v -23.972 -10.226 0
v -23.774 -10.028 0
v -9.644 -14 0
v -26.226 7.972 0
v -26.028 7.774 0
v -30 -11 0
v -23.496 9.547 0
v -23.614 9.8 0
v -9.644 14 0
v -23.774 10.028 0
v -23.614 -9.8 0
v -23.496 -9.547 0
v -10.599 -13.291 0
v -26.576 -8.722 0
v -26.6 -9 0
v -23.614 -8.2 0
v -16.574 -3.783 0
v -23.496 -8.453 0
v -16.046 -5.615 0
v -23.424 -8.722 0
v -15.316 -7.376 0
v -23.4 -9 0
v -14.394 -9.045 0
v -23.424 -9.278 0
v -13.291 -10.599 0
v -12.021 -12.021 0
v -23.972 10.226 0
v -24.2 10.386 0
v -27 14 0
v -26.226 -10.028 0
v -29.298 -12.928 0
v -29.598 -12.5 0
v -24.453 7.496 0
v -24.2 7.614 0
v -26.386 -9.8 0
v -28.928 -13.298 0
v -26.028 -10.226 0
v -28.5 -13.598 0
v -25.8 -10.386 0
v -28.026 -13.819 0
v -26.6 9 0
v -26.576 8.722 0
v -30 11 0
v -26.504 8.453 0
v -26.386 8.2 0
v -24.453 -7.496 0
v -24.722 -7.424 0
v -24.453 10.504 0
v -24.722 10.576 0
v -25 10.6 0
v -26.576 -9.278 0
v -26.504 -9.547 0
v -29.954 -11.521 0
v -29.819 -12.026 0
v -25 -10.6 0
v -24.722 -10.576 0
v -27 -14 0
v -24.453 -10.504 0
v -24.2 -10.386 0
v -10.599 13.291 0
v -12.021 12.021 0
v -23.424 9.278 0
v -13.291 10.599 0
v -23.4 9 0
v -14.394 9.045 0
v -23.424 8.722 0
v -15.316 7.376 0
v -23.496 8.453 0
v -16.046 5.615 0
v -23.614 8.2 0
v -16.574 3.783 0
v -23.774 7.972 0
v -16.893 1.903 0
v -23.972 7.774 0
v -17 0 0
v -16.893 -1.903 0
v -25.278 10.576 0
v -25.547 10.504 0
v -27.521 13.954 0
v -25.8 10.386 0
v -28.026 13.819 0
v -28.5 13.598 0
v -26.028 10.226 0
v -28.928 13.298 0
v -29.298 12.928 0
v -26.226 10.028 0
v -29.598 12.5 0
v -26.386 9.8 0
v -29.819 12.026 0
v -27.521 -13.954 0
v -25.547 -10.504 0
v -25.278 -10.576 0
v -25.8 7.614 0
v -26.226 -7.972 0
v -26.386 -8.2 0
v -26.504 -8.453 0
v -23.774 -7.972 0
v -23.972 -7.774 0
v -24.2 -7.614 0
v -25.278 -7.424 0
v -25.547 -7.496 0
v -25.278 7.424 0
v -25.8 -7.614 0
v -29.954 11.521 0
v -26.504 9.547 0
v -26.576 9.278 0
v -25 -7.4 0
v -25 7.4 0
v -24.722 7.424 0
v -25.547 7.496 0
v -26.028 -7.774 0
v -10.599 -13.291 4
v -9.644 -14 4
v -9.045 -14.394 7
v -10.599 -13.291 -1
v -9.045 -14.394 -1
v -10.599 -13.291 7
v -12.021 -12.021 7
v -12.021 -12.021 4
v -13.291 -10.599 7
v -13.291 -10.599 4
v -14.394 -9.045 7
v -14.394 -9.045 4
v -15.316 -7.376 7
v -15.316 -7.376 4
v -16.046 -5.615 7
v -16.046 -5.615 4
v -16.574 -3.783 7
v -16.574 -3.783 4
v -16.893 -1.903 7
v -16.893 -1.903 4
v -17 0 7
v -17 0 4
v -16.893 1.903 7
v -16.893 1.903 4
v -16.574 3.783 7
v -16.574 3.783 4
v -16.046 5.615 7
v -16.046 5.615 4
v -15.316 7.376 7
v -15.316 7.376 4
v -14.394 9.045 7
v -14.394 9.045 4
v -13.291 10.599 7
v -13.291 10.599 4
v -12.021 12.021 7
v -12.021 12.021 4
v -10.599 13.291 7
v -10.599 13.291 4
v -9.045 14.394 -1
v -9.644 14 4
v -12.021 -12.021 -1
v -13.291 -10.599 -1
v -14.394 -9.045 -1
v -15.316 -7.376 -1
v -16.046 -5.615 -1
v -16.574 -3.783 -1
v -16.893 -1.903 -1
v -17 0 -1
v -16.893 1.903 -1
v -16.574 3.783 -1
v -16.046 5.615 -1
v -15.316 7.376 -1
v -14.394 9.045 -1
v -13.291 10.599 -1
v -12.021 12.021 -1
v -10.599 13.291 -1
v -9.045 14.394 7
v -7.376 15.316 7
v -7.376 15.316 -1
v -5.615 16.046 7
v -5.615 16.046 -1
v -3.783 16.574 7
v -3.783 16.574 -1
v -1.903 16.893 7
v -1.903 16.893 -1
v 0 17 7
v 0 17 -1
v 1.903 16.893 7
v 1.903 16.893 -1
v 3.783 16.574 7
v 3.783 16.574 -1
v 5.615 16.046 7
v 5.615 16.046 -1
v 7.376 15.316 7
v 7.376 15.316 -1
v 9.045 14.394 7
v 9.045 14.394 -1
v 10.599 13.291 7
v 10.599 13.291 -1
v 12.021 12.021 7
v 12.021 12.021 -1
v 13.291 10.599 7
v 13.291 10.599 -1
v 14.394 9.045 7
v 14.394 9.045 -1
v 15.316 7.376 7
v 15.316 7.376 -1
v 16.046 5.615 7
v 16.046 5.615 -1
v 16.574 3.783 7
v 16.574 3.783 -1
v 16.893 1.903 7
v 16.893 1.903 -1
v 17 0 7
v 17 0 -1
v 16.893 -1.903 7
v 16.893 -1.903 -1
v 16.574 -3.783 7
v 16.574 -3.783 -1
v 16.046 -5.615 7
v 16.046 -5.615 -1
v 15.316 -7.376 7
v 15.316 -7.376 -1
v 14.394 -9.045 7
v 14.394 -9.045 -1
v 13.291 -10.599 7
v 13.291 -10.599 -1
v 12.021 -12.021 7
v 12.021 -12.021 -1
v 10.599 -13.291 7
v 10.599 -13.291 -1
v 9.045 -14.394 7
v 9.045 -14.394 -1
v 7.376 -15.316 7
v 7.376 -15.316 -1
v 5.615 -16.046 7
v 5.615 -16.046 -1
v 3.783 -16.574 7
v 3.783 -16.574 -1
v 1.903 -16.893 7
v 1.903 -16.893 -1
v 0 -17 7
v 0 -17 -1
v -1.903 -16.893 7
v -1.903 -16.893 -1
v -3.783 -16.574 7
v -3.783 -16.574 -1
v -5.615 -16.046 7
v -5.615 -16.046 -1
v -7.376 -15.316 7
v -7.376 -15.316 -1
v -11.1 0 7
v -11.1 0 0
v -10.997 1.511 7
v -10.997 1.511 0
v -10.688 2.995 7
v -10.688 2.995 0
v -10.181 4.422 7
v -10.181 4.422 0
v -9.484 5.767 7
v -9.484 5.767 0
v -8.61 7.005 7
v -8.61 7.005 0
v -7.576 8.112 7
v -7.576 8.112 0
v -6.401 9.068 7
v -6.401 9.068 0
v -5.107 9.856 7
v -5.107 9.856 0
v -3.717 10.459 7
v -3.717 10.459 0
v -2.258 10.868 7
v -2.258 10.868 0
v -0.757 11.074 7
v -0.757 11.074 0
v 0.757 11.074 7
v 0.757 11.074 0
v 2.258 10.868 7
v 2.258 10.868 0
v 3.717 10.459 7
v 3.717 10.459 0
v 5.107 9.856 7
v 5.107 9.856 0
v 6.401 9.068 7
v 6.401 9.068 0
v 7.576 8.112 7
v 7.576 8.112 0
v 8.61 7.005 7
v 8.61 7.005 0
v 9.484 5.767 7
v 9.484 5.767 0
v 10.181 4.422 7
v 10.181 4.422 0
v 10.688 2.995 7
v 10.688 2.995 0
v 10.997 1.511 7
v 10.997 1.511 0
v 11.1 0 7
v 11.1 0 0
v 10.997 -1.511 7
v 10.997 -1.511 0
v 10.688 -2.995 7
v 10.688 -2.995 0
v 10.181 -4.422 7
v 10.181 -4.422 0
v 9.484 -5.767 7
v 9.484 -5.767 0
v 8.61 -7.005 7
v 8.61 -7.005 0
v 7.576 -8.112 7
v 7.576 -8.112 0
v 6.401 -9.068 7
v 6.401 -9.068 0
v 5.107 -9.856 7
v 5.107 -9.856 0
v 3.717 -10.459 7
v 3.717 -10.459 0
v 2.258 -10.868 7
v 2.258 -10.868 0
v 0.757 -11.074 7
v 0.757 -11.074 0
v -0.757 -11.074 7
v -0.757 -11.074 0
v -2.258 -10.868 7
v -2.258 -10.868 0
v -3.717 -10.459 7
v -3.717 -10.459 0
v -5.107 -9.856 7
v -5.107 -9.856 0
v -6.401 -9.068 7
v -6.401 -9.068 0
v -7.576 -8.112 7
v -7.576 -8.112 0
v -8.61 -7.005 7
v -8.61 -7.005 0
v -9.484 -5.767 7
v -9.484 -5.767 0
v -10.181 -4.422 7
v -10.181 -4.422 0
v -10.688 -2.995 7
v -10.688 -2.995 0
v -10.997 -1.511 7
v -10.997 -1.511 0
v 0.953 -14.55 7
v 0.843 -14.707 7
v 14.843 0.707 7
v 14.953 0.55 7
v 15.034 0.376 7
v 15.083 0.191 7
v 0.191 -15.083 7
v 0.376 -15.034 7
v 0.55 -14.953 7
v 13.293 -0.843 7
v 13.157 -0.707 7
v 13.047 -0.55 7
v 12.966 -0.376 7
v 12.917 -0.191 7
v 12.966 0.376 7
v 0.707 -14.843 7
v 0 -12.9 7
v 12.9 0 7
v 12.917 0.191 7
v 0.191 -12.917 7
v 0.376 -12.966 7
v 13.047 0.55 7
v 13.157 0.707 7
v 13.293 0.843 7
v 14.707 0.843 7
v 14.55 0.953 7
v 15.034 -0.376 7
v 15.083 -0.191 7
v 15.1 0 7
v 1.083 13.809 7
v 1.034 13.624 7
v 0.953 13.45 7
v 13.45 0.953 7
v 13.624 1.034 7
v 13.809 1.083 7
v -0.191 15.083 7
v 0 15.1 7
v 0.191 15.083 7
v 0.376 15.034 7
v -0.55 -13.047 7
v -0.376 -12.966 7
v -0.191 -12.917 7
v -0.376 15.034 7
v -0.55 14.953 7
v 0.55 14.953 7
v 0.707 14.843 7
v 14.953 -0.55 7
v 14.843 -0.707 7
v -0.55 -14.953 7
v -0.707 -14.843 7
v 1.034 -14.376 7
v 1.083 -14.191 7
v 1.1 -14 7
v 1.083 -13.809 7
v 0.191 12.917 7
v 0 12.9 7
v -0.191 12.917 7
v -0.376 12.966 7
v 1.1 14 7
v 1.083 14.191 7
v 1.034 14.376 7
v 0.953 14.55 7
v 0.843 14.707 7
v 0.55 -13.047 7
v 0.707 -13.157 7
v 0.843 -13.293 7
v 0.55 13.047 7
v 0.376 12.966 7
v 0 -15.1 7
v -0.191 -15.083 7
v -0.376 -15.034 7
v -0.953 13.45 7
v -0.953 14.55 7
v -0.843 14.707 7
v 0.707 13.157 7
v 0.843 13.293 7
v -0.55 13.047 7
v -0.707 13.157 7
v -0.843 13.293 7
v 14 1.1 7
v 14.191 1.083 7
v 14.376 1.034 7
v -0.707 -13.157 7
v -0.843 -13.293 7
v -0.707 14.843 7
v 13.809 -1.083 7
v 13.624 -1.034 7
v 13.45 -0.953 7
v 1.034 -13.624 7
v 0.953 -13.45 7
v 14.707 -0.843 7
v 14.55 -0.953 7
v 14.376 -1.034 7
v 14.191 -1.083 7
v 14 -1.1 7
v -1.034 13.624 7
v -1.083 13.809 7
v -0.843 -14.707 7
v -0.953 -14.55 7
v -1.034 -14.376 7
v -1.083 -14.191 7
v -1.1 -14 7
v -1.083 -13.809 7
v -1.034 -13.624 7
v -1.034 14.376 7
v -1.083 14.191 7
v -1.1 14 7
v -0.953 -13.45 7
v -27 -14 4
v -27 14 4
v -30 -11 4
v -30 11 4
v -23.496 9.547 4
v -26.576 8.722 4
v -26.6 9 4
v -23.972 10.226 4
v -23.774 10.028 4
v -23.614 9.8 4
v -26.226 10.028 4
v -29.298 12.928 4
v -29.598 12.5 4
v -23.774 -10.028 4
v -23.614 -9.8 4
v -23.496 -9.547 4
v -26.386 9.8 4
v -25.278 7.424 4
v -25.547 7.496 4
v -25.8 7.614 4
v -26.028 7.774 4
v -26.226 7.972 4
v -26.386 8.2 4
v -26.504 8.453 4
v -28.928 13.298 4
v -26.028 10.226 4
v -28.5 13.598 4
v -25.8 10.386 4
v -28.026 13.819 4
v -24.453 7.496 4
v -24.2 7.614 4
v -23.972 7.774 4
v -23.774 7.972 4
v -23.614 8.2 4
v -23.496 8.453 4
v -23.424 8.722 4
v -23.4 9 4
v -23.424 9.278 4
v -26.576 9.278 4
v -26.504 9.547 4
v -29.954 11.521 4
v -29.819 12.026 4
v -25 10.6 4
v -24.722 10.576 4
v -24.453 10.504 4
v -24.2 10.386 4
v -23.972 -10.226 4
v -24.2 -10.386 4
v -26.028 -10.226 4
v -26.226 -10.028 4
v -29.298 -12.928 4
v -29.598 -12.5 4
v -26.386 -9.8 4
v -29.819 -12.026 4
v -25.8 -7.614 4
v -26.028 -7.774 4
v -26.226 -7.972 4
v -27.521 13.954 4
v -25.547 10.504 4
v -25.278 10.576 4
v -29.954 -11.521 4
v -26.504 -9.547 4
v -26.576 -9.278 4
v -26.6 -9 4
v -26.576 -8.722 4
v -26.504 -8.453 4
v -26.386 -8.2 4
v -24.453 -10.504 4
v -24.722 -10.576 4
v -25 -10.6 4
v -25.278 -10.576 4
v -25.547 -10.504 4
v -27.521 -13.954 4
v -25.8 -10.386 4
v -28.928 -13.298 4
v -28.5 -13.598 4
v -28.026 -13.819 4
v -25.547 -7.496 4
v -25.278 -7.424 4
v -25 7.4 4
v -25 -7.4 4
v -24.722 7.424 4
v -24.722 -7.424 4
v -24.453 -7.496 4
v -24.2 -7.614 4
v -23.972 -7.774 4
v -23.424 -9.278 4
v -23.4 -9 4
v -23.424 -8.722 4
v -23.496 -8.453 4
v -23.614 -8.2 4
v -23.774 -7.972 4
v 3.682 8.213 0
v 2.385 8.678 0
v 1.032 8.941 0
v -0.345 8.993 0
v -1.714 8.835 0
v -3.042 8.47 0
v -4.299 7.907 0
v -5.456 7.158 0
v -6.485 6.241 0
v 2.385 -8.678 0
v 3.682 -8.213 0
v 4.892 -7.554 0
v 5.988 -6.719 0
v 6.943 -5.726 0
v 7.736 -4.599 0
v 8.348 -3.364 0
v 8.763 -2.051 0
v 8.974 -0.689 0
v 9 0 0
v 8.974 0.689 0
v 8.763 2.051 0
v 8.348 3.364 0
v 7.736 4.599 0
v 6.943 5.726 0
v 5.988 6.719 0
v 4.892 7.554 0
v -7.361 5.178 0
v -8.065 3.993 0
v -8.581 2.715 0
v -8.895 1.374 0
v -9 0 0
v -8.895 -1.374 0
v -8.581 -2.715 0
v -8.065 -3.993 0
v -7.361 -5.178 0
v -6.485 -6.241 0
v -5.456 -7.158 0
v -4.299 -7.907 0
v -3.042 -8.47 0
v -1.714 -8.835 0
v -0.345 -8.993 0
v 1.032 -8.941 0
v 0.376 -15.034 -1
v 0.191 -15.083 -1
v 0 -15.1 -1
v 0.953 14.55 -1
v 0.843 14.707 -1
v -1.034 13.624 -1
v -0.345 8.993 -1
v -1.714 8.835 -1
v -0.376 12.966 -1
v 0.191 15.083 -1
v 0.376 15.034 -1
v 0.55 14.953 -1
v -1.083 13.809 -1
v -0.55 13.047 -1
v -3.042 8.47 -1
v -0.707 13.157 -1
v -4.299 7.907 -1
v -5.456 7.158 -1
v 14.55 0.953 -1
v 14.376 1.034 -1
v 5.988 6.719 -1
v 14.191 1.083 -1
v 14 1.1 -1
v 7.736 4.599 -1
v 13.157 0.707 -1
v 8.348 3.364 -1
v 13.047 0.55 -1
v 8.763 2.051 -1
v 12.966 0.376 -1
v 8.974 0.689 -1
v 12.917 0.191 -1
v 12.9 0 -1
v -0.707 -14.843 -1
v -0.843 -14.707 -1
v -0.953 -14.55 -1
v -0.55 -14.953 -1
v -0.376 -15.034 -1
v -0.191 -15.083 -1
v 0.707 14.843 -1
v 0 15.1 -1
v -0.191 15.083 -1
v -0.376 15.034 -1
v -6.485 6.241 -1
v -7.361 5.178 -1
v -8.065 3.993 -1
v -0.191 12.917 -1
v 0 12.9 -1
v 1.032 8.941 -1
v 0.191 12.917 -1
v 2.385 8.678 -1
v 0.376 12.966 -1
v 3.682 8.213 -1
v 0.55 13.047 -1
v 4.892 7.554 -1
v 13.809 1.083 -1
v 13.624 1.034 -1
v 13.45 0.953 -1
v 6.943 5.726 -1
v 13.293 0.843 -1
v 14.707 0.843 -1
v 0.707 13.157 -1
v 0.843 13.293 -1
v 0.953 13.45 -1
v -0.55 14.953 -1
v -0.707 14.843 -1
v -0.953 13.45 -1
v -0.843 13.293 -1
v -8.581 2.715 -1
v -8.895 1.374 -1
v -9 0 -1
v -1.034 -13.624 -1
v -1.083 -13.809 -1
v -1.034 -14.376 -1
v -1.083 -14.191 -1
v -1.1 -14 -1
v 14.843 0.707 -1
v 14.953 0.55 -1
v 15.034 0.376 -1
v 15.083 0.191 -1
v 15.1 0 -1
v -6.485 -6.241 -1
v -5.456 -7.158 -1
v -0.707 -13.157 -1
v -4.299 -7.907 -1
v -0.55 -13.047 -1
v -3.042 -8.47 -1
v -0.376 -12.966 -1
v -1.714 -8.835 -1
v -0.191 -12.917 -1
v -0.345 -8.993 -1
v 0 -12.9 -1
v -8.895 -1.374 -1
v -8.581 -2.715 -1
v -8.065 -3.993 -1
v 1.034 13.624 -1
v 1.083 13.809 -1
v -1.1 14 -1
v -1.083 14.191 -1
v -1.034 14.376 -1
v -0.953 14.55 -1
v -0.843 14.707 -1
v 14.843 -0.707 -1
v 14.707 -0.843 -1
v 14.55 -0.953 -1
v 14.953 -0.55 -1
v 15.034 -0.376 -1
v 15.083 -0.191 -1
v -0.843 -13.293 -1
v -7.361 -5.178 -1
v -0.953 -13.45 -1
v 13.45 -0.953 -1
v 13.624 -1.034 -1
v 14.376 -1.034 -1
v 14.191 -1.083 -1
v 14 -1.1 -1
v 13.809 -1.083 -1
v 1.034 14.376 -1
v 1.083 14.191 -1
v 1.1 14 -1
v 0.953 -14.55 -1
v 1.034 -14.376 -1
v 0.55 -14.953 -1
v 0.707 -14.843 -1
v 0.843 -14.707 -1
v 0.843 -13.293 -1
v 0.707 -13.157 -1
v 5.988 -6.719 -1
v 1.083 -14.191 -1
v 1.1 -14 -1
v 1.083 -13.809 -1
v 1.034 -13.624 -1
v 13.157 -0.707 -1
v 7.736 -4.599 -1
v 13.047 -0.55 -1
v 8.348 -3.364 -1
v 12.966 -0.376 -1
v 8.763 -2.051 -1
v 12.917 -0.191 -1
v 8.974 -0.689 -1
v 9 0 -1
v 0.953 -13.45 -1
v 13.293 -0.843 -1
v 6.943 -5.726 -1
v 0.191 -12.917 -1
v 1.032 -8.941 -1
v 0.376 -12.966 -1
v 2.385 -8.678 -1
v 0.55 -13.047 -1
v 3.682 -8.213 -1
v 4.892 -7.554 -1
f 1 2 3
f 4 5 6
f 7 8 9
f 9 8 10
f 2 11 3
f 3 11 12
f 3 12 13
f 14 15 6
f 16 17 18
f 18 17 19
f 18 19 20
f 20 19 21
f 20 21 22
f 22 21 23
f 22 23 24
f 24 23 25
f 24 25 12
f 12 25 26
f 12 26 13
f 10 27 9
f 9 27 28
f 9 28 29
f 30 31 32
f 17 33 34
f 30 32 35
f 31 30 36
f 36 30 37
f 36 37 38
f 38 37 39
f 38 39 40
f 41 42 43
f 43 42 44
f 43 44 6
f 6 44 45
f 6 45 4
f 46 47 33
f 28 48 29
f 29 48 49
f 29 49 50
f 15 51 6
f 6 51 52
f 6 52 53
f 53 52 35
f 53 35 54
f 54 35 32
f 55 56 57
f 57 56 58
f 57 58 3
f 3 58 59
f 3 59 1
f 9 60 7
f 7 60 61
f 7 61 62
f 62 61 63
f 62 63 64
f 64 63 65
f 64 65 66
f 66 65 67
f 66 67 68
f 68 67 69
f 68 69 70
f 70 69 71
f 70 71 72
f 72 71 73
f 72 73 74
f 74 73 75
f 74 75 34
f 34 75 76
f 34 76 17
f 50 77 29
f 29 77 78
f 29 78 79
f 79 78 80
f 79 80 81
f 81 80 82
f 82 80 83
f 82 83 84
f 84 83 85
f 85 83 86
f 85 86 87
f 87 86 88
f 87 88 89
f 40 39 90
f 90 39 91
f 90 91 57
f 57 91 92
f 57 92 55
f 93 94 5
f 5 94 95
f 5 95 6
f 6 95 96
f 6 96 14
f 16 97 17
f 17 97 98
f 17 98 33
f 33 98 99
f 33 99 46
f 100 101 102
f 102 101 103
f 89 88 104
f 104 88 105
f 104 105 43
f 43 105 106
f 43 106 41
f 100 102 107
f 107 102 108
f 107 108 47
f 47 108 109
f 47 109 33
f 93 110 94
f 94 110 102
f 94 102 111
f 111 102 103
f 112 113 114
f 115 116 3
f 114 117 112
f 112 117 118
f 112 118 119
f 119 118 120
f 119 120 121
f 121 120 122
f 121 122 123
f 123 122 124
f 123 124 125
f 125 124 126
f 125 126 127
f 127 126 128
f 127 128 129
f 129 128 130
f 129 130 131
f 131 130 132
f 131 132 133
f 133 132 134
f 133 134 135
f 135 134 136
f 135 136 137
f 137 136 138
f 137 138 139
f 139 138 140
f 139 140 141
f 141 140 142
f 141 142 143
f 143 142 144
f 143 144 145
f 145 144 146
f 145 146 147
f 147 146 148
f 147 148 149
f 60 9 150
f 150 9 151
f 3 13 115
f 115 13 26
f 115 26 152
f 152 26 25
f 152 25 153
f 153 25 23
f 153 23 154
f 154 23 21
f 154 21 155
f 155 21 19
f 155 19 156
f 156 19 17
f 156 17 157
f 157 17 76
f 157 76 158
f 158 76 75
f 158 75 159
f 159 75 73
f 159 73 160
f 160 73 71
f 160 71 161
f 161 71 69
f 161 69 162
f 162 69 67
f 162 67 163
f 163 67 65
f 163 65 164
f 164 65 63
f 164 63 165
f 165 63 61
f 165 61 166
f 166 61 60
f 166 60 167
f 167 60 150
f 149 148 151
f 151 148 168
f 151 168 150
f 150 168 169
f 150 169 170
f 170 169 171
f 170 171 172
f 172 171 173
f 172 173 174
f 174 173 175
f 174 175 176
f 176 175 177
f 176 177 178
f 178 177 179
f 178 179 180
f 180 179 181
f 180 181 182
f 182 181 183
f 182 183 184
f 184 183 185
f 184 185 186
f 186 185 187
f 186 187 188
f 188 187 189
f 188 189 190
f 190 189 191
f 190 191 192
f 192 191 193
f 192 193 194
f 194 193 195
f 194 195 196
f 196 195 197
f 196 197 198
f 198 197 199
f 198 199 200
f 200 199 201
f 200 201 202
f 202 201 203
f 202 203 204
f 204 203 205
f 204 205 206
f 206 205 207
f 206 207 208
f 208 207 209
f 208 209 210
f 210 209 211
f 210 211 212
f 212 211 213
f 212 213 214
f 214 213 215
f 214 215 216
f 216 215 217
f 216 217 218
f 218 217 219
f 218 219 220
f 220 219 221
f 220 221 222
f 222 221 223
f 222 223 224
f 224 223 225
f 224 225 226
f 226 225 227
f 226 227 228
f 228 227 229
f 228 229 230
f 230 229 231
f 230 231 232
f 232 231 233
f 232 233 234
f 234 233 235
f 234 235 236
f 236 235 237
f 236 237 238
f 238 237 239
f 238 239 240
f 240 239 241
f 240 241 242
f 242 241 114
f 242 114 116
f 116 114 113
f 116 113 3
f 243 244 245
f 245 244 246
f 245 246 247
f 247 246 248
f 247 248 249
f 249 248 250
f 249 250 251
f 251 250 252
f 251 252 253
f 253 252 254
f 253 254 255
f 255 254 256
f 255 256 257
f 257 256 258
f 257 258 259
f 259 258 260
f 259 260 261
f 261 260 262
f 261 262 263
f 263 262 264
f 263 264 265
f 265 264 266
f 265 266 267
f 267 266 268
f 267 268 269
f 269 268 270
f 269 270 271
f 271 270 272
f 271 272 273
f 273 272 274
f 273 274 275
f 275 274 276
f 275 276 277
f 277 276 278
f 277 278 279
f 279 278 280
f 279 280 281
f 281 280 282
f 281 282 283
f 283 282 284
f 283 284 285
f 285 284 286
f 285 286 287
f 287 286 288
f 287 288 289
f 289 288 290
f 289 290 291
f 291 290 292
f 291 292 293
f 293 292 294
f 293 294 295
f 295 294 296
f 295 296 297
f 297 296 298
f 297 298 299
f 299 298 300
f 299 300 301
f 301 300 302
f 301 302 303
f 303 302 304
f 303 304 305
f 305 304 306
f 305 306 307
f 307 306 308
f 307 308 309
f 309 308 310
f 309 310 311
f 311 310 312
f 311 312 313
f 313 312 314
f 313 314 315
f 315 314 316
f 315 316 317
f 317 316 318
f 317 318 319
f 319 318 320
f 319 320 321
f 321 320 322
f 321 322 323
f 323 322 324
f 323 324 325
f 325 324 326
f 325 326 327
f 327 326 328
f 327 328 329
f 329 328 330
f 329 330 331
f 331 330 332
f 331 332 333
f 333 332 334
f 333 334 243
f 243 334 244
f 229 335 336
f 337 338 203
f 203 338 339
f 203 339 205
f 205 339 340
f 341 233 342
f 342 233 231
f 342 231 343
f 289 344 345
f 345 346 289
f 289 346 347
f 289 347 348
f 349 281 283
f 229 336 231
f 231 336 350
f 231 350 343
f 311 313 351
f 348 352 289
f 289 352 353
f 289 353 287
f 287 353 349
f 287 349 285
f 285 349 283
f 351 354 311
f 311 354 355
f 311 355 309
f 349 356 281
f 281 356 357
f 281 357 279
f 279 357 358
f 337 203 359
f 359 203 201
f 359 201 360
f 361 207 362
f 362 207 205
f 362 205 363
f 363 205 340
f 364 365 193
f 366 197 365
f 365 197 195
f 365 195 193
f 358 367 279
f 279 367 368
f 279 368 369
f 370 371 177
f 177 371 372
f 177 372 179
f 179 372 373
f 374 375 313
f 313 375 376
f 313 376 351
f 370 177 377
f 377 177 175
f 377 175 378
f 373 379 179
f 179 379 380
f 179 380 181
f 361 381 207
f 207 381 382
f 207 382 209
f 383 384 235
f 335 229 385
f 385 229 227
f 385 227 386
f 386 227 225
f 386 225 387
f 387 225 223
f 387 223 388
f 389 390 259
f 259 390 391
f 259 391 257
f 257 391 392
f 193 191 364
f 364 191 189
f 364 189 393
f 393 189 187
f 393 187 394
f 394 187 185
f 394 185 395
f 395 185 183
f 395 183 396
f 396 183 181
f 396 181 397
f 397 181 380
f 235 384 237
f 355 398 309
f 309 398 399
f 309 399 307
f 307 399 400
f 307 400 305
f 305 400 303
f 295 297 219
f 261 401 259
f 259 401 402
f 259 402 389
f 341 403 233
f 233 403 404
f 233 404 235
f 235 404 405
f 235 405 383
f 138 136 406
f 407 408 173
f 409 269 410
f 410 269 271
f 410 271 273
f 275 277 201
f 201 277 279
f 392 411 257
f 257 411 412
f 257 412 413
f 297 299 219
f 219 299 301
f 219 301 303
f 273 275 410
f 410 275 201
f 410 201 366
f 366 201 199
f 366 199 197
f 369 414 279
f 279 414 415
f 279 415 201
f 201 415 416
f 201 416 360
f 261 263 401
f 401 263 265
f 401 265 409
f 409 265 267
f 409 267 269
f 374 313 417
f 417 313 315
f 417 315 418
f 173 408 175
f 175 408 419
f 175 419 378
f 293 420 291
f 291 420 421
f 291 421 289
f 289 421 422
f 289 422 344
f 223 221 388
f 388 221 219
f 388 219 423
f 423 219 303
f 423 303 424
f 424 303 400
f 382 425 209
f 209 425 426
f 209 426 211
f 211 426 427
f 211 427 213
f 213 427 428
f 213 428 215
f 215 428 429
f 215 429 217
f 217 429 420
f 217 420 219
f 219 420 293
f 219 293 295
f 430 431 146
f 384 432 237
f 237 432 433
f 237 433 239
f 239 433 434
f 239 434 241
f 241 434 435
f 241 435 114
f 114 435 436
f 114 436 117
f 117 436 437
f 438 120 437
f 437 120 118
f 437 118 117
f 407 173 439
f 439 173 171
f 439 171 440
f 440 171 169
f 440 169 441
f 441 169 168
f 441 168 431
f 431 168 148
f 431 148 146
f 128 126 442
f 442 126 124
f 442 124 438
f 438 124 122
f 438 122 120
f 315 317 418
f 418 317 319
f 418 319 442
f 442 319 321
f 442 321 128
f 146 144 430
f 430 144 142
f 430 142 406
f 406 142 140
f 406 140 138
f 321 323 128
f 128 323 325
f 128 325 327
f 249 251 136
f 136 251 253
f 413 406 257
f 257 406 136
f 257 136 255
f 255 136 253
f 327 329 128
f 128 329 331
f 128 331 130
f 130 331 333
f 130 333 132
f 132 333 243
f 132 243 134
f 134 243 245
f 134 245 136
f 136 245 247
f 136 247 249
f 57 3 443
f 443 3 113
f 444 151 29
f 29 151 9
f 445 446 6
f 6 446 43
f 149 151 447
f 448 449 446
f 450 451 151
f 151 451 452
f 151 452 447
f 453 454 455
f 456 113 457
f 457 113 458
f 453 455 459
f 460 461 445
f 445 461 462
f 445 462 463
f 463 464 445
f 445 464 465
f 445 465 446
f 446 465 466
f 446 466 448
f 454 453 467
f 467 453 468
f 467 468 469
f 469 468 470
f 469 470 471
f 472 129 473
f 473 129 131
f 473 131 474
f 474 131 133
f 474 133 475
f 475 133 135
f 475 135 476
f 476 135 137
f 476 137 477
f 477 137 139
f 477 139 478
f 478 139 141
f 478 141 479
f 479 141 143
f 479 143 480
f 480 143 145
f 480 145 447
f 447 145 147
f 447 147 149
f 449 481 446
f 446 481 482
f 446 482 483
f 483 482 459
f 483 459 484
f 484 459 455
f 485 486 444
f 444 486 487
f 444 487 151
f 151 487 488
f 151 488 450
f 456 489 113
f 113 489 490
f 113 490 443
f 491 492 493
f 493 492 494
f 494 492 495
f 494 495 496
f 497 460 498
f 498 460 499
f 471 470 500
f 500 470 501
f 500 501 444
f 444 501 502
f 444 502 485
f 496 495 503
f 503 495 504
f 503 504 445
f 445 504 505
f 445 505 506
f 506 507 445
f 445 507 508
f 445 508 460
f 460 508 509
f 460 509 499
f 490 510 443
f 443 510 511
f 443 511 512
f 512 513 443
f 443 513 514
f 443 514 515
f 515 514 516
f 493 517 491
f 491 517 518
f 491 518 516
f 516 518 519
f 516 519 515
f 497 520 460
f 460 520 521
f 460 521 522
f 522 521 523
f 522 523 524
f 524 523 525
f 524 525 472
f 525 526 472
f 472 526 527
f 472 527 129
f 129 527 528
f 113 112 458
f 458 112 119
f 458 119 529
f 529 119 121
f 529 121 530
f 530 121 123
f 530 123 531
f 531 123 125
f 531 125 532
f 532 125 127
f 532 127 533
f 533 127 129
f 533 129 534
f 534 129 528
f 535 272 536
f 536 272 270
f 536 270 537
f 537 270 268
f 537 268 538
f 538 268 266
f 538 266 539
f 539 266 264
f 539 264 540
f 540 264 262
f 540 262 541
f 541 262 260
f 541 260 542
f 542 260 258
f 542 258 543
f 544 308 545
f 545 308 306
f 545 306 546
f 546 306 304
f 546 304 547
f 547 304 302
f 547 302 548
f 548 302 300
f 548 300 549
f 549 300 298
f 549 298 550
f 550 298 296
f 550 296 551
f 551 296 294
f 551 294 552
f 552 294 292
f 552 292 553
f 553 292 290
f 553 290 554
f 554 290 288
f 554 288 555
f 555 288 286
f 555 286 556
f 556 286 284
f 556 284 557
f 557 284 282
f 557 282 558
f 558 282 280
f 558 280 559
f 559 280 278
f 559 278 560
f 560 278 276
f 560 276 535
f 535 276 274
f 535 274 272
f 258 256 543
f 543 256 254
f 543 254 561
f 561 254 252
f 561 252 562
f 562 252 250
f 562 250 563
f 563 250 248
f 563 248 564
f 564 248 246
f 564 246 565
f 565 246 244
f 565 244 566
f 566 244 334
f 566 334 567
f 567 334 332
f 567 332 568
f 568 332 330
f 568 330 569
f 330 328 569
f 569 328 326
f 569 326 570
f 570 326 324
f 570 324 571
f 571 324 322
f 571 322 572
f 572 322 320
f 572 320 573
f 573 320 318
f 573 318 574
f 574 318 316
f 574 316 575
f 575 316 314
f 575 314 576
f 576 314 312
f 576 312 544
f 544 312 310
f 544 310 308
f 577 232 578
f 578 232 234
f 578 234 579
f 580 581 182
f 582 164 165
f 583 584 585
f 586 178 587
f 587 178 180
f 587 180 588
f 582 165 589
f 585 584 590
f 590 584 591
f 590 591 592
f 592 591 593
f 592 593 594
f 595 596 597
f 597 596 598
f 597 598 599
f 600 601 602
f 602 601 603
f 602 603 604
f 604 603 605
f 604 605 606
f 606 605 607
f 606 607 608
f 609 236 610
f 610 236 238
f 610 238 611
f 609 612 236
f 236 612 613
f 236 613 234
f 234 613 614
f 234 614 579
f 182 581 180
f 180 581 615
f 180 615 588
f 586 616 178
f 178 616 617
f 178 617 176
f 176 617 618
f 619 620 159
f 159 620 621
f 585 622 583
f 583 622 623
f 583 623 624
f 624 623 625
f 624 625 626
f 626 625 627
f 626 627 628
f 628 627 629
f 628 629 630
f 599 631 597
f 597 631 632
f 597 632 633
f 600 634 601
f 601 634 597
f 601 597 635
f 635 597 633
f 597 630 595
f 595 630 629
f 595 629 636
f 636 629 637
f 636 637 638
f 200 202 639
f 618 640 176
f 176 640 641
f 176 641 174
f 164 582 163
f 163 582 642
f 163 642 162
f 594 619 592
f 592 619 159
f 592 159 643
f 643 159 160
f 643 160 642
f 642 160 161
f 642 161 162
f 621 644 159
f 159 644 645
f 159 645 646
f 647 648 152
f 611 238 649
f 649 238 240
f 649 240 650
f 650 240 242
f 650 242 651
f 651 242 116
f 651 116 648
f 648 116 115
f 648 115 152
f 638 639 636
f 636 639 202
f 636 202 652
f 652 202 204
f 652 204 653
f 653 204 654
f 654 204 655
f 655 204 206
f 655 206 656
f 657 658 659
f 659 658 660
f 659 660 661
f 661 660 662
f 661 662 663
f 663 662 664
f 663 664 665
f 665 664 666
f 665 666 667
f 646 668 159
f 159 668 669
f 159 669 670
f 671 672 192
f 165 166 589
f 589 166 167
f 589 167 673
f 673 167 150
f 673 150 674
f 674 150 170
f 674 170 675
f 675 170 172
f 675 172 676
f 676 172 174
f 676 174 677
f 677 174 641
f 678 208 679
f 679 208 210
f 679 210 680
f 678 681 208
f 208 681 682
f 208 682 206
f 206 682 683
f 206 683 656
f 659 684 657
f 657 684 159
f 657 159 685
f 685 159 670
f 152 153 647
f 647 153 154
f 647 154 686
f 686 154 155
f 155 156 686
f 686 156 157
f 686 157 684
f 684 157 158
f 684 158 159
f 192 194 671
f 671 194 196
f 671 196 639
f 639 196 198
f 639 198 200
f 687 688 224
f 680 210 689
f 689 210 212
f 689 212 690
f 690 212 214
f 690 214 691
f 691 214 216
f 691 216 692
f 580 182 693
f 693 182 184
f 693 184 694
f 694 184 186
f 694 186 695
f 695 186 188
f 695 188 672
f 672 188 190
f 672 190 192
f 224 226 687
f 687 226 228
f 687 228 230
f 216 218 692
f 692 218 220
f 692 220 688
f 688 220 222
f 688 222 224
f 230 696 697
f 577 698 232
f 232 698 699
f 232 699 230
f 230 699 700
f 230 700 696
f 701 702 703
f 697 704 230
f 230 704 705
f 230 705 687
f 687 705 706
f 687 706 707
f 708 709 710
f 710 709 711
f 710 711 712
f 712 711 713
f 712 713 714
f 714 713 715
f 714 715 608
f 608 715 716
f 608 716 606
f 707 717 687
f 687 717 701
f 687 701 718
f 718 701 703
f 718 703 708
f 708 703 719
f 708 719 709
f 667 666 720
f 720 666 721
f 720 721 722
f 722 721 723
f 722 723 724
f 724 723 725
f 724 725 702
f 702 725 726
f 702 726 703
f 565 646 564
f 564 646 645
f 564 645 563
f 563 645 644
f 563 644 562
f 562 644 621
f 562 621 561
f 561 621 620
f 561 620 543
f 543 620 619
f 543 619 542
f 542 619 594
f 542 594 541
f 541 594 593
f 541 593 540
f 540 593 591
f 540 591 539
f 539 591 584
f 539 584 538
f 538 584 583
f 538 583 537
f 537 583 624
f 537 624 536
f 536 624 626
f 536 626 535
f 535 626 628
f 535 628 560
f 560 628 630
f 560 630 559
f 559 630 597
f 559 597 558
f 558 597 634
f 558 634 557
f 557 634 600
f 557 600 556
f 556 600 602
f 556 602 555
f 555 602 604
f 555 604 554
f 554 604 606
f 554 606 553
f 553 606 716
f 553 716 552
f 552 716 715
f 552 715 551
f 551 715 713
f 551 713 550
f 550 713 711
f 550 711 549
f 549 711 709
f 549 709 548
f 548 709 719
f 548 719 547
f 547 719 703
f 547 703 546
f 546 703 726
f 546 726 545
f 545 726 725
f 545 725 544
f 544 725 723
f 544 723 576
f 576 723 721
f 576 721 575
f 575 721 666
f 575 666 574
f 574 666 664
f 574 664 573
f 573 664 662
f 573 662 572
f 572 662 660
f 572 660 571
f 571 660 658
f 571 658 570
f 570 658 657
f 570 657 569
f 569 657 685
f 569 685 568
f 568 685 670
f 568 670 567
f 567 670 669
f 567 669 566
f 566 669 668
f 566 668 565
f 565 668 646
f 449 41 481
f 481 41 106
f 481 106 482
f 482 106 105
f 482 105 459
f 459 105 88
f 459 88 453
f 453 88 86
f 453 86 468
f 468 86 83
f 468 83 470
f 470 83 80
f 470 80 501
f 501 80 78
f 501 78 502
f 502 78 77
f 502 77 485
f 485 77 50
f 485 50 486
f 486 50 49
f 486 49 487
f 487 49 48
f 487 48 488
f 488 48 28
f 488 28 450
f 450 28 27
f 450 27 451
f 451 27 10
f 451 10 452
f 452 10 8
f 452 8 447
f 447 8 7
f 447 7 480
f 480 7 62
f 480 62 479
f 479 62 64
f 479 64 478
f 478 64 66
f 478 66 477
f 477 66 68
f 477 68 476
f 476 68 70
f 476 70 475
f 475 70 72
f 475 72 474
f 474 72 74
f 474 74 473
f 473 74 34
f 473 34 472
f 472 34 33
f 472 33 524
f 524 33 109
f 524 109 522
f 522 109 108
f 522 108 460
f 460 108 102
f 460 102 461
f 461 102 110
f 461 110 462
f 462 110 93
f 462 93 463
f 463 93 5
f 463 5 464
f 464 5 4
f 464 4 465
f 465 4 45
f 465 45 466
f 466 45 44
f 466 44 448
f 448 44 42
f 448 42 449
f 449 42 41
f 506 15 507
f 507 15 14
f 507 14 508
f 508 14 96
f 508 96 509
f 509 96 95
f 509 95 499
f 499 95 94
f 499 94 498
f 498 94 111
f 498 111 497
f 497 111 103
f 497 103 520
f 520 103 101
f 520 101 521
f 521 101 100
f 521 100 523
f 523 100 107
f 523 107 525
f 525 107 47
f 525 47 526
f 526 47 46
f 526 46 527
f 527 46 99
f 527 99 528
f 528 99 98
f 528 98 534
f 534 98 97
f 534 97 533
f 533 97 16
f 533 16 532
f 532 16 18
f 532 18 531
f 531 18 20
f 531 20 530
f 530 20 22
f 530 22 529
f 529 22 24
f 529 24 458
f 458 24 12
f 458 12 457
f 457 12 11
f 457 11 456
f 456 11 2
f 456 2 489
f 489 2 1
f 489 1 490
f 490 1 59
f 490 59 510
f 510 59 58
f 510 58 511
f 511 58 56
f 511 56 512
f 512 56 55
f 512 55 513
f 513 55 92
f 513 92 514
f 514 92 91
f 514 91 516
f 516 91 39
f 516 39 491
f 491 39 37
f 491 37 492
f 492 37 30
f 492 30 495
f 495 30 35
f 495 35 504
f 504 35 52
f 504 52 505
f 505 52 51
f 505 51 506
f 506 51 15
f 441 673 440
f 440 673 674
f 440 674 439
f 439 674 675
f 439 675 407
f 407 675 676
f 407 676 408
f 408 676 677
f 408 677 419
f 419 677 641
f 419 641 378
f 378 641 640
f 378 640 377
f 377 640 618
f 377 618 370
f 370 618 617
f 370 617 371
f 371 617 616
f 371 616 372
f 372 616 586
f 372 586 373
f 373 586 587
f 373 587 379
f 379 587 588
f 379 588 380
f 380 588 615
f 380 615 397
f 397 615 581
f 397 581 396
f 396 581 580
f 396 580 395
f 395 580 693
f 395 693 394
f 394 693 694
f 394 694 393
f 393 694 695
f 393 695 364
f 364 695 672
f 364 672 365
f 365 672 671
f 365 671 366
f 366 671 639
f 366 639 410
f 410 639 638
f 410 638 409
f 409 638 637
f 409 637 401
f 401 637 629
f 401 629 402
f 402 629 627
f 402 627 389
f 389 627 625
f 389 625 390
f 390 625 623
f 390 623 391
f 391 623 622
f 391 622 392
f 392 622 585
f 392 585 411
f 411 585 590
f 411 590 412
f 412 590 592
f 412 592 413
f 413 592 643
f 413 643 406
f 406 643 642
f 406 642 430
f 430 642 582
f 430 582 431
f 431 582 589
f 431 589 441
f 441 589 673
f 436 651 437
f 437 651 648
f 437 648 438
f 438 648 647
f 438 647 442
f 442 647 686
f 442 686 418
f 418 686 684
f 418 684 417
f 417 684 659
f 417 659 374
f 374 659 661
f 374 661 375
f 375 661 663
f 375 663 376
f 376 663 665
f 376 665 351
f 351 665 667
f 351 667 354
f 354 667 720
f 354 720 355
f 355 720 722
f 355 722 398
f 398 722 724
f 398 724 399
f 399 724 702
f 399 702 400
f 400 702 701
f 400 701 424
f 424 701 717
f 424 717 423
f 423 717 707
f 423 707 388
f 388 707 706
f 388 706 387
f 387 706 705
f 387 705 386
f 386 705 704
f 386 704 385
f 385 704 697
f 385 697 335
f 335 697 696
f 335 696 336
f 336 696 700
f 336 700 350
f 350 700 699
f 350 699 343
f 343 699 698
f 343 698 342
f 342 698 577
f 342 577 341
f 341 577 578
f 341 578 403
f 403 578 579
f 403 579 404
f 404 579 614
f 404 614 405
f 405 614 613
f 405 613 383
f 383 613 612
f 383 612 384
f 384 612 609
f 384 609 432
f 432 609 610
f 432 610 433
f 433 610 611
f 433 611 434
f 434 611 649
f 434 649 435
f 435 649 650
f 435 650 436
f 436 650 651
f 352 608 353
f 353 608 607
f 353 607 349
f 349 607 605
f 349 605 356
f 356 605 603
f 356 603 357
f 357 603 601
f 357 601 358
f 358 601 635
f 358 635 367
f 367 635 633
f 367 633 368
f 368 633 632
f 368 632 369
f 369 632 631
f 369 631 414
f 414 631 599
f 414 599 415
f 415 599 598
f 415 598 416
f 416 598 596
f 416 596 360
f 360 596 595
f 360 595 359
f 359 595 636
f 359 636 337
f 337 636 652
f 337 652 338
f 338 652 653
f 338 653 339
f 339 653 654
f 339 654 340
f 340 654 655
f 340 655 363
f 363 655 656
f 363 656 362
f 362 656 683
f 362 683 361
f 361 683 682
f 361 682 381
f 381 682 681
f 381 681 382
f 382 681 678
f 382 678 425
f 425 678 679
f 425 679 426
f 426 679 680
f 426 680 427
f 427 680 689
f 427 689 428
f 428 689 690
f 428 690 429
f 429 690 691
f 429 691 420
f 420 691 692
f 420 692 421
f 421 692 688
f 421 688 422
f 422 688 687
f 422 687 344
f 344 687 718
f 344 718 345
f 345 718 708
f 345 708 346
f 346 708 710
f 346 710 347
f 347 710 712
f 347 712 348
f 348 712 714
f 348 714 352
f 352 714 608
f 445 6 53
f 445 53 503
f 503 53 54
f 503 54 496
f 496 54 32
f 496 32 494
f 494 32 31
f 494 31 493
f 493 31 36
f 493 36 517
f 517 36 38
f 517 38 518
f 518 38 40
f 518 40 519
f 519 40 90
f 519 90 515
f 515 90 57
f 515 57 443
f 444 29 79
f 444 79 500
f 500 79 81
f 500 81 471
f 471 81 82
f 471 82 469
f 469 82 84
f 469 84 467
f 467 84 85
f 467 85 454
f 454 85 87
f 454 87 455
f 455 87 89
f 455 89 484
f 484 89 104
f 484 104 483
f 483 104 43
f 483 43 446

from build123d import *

# Parameters (mm, degrees)
BEARING_HOUSING_PROFILE_R                  = 17
BEARING_HOUSING_PROFILE_R_2                = 11.1
BEARING_HOUSING_DEPTH                      = 7
MOUNTING_WEB_PROFILE_W                     = 30
MOUNTING_WEB_PROFILE_H                     = 28
MOUNTING_WEB_DEPTH                         = 4
BEARING_SEAT_START                         = -50
BEARING_SEAT_PROFILE_R                     = 11.1
BEARING_SEAT_DEPTH                         = 86.185224172
INNER_OUTER_RACE_RETAINING_LIP_START       = -1
INNER_OUTER_RACE_RETAINING_LIP_PROFILE_R   = 17
INNER_OUTER_RACE_RETAINING_LIP_PROFILE_R_2 = 9
INNER_OUTER_RACE_RETAINING_LIP_DEPTH       = 1
STANDOFF_FASTENERS_START                   = -50
STANDOFF_FASTENERS_PROFILE_R               = 1.6
STANDOFF_FASTENERS_DEPTH                   = 86.185224172
BEARING_KEEPER_FASTENERS_START             = -50
BEARING_KEEPER_FASTENERS_PROFILE_R         = 1.1
BEARING_KEEPER_FASTENERS_DEPTH             = 86.185224172
FILLET1_R                                  = 3


with BuildPart() as part:
    # Bearing_housing_profile → Bearing_housing (new body)
    with BuildSketch(Plane.XY):
        Circle(BEARING_HOUSING_PROFILE_R)
        Circle(BEARING_HOUSING_PROFILE_R_2, mode=Mode.SUBTRACT)
    extrude(amount=BEARING_HOUSING_DEPTH)

    # Mounting_web_profile → Mounting_web (add)
    with BuildSketch(Plane.XY):
        with Locations((-15, 0)):
            Rectangle(MOUNTING_WEB_PROFILE_W, MOUNTING_WEB_PROFILE_H)
    extrude(amount=MOUNTING_WEB_DEPTH)

    # Bearing_seat_profile → Bearing_seat (cut, through all)
    with BuildSketch(Plane.XY.offset(BEARING_SEAT_START)):
        Circle(BEARING_SEAT_PROFILE_R)
    extrude(amount=BEARING_SEAT_DEPTH, mode=Mode.SUBTRACT)

    # Inner_outer_race_retaining_lip_profile → Inner_outer_race_retaining_lip (add)
    with BuildSketch(Plane.XY.offset(INNER_OUTER_RACE_RETAINING_LIP_START)):
        Circle(INNER_OUTER_RACE_RETAINING_LIP_PROFILE_R)
        Circle(INNER_OUTER_RACE_RETAINING_LIP_PROFILE_R_2, mode=Mode.SUBTRACT)
    extrude(amount=INNER_OUTER_RACE_RETAINING_LIP_DEPTH)

    # Standoff_fasteners_profile → Standoff_fasteners (cut, through all)
    with BuildSketch(Plane.XY.offset(STANDOFF_FASTENERS_START)):
        with Locations(Location((-25, -9, 0), (0, 0, 180))):
            Circle(STANDOFF_FASTENERS_PROFILE_R)
        with Locations(Location((-25, 9, 0), (0, 0, 180))):
            Circle(STANDOFF_FASTENERS_PROFILE_R)
    extrude(amount=STANDOFF_FASTENERS_DEPTH, mode=Mode.SUBTRACT)

    # Bearing_keeper_fasteners_profile → Bearing_keeper_fasteners (cut, through all)
    with BuildSketch(Plane.XY.offset(BEARING_KEEPER_FASTENERS_START)):
        with Locations(Location((14, 0, 0), (0, 0, 180))):
            Circle(BEARING_KEEPER_FASTENERS_PROFILE_R)
        with Locations(Location((0, -14, 0), (0, 0, 180))):
            Circle(BEARING_KEEPER_FASTENERS_PROFILE_R)
        with Locations(Location((0, 14, 0), (0, 0, 180))):
            Circle(BEARING_KEEPER_FASTENERS_PROFILE_R)
    extrude(amount=BEARING_KEEPER_FASTENERS_DEPTH, mode=Mode.SUBTRACT)

    # Fillet1
    fillet1_edges = [part.edges().sort_by_distance(p)[0] for p in [
        (-30, -14, 2),
        (-30, 14, 2),
    ]]
    fillet(fillet1_edges, radius=FILLET1_R)


solid = part.part
